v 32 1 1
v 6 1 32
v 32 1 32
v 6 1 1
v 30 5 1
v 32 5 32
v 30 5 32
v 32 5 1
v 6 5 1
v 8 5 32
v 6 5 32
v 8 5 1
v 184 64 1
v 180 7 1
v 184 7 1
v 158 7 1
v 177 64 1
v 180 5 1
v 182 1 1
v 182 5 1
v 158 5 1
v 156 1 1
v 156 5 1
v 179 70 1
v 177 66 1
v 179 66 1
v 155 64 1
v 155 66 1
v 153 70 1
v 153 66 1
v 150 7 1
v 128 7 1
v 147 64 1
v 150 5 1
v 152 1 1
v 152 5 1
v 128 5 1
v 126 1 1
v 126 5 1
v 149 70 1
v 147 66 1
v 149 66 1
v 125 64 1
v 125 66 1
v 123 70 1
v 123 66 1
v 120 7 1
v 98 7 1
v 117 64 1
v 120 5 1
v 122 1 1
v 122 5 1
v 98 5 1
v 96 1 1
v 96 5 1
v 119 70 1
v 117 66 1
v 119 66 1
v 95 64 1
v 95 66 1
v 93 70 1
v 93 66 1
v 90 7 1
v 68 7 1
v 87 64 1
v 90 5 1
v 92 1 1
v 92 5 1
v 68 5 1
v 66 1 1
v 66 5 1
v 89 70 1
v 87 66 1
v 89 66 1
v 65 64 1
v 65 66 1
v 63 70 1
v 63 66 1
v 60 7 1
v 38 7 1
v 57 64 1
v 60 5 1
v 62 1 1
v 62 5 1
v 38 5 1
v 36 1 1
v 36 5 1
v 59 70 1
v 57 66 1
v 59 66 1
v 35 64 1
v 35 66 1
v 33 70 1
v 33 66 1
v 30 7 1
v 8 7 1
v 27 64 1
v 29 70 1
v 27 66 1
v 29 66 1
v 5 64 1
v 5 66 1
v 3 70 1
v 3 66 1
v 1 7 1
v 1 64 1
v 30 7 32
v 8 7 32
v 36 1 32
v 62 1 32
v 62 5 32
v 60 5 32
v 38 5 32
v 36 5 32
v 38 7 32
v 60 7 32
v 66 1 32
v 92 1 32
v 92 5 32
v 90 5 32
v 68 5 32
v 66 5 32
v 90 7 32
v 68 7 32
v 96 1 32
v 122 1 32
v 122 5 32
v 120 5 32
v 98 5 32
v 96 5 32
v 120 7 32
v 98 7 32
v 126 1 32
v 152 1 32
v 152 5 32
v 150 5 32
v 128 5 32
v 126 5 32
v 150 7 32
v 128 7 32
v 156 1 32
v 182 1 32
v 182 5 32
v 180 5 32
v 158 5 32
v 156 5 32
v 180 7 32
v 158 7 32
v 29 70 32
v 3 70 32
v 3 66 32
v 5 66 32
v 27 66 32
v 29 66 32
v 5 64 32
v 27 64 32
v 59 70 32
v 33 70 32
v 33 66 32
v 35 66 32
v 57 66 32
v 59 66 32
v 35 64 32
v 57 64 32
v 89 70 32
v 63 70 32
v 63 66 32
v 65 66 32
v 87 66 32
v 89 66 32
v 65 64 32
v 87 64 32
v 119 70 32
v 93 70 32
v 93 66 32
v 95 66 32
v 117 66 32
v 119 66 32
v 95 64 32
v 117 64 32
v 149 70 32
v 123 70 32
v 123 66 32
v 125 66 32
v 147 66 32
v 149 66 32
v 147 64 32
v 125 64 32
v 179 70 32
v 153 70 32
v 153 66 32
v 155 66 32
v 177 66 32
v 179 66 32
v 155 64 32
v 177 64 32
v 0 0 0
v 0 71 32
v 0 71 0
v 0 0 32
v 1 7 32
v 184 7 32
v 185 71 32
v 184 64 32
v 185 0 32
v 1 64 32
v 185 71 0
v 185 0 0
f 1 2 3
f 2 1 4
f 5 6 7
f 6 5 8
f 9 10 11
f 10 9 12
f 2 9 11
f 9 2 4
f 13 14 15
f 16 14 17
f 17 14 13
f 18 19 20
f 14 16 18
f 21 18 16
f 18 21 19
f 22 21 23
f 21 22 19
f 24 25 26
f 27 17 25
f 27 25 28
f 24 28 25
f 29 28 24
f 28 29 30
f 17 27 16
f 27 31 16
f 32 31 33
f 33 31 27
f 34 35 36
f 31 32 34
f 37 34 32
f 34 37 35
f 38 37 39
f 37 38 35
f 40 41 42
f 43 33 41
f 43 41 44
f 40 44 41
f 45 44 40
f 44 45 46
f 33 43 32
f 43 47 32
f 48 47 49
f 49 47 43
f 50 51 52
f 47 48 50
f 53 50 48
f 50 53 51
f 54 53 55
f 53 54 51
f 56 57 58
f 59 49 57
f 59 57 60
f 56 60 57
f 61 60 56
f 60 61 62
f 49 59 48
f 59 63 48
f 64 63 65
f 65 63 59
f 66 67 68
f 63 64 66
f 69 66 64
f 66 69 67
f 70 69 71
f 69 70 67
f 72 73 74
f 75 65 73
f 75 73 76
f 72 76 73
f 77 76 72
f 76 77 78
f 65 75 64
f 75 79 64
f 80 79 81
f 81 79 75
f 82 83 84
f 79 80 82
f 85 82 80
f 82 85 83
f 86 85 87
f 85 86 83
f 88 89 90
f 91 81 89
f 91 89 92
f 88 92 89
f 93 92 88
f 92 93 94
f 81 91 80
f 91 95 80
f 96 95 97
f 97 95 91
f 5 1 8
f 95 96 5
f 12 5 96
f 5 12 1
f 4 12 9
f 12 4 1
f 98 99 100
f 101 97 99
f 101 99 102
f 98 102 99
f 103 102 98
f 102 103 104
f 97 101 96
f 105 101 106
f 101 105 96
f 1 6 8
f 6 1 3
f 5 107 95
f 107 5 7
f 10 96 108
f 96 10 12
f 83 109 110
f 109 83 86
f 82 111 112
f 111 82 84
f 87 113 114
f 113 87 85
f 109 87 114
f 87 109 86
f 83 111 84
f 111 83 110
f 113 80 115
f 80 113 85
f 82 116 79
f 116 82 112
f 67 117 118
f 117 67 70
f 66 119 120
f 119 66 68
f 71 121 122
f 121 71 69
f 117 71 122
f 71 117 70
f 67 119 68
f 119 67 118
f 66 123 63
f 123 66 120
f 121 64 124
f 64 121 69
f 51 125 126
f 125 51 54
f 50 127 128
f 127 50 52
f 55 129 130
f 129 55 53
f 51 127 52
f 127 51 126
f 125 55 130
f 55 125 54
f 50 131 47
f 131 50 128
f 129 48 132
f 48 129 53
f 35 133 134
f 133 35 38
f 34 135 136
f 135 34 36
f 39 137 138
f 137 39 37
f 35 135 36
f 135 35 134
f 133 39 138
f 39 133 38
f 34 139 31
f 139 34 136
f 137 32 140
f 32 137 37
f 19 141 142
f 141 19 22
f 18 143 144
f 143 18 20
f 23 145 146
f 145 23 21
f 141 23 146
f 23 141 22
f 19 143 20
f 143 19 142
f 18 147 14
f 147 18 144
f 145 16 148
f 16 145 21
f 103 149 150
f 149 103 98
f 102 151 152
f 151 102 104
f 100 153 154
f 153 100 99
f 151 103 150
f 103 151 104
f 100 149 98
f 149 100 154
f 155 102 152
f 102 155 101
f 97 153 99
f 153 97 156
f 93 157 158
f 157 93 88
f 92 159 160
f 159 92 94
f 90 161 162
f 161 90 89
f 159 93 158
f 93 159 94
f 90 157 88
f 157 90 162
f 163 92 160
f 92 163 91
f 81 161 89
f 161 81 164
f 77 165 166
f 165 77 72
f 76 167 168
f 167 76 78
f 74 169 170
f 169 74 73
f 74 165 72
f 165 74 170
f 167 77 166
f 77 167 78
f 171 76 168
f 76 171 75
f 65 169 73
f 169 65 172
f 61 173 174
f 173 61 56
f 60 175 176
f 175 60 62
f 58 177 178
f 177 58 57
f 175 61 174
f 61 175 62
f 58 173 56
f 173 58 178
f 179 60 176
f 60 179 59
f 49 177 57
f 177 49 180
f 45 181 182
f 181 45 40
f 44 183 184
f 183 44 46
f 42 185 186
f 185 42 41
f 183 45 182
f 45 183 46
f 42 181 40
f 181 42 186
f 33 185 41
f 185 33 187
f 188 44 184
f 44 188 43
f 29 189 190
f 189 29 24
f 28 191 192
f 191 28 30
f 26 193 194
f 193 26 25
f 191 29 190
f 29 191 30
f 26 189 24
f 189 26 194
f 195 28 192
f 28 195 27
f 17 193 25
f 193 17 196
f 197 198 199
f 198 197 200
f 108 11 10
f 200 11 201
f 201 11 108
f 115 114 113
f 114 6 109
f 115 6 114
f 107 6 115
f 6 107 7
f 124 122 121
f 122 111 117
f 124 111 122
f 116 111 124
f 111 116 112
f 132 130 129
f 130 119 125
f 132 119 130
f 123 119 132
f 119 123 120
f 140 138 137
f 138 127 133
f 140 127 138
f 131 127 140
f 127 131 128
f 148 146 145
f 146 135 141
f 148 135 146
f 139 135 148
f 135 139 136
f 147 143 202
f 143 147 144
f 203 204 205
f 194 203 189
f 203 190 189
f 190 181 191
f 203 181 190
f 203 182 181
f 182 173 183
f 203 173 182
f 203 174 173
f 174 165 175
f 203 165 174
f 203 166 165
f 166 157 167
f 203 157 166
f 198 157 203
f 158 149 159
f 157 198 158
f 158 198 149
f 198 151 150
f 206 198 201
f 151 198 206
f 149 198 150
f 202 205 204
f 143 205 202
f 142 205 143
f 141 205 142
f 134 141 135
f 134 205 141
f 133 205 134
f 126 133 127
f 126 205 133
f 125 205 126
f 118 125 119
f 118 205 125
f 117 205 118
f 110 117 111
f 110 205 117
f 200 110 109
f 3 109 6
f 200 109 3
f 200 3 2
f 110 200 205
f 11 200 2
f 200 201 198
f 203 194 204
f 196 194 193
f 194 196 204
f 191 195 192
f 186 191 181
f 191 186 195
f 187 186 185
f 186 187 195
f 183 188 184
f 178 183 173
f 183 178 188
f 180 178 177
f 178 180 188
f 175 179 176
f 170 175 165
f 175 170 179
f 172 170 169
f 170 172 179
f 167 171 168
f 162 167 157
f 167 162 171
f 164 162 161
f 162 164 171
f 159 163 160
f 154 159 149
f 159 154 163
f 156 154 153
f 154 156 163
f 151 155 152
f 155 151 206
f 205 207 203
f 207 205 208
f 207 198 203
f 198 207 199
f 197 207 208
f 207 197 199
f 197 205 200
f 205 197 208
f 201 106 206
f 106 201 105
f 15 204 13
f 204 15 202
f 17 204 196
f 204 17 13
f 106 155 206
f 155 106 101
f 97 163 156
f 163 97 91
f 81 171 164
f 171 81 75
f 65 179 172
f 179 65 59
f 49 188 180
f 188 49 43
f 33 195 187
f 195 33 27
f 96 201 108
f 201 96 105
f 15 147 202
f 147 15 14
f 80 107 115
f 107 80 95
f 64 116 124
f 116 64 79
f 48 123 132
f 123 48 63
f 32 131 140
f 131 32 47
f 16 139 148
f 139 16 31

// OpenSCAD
// 208 - 67
BOX_X = 185;
BOX_Y = 71;
BOX_Z = 32;

THICK = 1;
MARGIN = 6;

MODEL_W = 4;
MODEL_L = 26;
MODEL_M = 2;

S_MODEL_W = 4;
S_MODEL_L = 26;
S_MODEL_M = 2;

GAP = 30;

difference() {
    cube(size = [
        BOX_X,
        BOX_Y, 
        BOX_Z]);

    translate([
        THICK, 
        MARGIN + THICK, 
        THICK]) {
            
        cube(size = [
            BOX_X - (THICK * 2),
            BOX_Y - (MARGIN * 2) - (THICK * 2),
            BOX_Z]);
    }


    modelSlot(THICK, -2 - GAP, 90);
    modelSlot(THICK, -2 - GAP * 2, 90);
    modelSlot(THICK, -2 - GAP * 3, 90);
    modelSlot(THICK, -2 - GAP * 4, 90);
    modelSlot(THICK, -2 - GAP * 5, 90);
    modelSlot(THICK, -2 - GAP * 6, 90);

    modelSlot(THICK - BOX_Y, 3, 270);
    modelSlot(THICK - BOX_Y, 3 + GAP, 270);
    modelSlot(THICK - BOX_Y, 3 + GAP * 2, 270);
    modelSlot(THICK - BOX_Y, 3 + GAP * 3, 270);
    modelSlot(THICK - BOX_Y, 3 + GAP * 4, 270);
    modelSlot(THICK - BOX_Y, 3 + GAP * 5, 270);
    
    //modelSlot(90, 0, 0);
    //modelSlot(180, 0, 0);
    //modelSlot(270, 0, 0);
}

//big_modelSlot(THICK - BOX_Y, (BOX_Y / 2) + (BIG_MODEL_L / 2), 270);

module modelSlot(x, y, rot) {
    rotate([0, 0, rot]) {
        translate([x, y, THICK]) {
            cube(size = [
                MODEL_W,
                MODEL_L,
                BOX_Z]);
        }        
        
        translate([x + MODEL_M, y + MODEL_M, THICK]) {
            cube(size = [
                MODEL_W + 2,
                MODEL_L - (MODEL_M * 2),
                BOX_Z]);
        }
    }
}

module smallModelSlot(x, y, rot) {
    rotate([0, 0, rot]) {
        translate([x, y, THICK]) {
            cube(size = [
                MODEL_W,
                MODEL_L,
                BOX_Z]);
        }        
        
        translate([x + S_MODEL_M, y + S_MODEL_M, THICK]) {
            cube(size = [
                S_MODEL_W + 2,
                S_MODEL_L - (S_MODEL_M * 2),
                BOX_Z]);
        }
    }
}
